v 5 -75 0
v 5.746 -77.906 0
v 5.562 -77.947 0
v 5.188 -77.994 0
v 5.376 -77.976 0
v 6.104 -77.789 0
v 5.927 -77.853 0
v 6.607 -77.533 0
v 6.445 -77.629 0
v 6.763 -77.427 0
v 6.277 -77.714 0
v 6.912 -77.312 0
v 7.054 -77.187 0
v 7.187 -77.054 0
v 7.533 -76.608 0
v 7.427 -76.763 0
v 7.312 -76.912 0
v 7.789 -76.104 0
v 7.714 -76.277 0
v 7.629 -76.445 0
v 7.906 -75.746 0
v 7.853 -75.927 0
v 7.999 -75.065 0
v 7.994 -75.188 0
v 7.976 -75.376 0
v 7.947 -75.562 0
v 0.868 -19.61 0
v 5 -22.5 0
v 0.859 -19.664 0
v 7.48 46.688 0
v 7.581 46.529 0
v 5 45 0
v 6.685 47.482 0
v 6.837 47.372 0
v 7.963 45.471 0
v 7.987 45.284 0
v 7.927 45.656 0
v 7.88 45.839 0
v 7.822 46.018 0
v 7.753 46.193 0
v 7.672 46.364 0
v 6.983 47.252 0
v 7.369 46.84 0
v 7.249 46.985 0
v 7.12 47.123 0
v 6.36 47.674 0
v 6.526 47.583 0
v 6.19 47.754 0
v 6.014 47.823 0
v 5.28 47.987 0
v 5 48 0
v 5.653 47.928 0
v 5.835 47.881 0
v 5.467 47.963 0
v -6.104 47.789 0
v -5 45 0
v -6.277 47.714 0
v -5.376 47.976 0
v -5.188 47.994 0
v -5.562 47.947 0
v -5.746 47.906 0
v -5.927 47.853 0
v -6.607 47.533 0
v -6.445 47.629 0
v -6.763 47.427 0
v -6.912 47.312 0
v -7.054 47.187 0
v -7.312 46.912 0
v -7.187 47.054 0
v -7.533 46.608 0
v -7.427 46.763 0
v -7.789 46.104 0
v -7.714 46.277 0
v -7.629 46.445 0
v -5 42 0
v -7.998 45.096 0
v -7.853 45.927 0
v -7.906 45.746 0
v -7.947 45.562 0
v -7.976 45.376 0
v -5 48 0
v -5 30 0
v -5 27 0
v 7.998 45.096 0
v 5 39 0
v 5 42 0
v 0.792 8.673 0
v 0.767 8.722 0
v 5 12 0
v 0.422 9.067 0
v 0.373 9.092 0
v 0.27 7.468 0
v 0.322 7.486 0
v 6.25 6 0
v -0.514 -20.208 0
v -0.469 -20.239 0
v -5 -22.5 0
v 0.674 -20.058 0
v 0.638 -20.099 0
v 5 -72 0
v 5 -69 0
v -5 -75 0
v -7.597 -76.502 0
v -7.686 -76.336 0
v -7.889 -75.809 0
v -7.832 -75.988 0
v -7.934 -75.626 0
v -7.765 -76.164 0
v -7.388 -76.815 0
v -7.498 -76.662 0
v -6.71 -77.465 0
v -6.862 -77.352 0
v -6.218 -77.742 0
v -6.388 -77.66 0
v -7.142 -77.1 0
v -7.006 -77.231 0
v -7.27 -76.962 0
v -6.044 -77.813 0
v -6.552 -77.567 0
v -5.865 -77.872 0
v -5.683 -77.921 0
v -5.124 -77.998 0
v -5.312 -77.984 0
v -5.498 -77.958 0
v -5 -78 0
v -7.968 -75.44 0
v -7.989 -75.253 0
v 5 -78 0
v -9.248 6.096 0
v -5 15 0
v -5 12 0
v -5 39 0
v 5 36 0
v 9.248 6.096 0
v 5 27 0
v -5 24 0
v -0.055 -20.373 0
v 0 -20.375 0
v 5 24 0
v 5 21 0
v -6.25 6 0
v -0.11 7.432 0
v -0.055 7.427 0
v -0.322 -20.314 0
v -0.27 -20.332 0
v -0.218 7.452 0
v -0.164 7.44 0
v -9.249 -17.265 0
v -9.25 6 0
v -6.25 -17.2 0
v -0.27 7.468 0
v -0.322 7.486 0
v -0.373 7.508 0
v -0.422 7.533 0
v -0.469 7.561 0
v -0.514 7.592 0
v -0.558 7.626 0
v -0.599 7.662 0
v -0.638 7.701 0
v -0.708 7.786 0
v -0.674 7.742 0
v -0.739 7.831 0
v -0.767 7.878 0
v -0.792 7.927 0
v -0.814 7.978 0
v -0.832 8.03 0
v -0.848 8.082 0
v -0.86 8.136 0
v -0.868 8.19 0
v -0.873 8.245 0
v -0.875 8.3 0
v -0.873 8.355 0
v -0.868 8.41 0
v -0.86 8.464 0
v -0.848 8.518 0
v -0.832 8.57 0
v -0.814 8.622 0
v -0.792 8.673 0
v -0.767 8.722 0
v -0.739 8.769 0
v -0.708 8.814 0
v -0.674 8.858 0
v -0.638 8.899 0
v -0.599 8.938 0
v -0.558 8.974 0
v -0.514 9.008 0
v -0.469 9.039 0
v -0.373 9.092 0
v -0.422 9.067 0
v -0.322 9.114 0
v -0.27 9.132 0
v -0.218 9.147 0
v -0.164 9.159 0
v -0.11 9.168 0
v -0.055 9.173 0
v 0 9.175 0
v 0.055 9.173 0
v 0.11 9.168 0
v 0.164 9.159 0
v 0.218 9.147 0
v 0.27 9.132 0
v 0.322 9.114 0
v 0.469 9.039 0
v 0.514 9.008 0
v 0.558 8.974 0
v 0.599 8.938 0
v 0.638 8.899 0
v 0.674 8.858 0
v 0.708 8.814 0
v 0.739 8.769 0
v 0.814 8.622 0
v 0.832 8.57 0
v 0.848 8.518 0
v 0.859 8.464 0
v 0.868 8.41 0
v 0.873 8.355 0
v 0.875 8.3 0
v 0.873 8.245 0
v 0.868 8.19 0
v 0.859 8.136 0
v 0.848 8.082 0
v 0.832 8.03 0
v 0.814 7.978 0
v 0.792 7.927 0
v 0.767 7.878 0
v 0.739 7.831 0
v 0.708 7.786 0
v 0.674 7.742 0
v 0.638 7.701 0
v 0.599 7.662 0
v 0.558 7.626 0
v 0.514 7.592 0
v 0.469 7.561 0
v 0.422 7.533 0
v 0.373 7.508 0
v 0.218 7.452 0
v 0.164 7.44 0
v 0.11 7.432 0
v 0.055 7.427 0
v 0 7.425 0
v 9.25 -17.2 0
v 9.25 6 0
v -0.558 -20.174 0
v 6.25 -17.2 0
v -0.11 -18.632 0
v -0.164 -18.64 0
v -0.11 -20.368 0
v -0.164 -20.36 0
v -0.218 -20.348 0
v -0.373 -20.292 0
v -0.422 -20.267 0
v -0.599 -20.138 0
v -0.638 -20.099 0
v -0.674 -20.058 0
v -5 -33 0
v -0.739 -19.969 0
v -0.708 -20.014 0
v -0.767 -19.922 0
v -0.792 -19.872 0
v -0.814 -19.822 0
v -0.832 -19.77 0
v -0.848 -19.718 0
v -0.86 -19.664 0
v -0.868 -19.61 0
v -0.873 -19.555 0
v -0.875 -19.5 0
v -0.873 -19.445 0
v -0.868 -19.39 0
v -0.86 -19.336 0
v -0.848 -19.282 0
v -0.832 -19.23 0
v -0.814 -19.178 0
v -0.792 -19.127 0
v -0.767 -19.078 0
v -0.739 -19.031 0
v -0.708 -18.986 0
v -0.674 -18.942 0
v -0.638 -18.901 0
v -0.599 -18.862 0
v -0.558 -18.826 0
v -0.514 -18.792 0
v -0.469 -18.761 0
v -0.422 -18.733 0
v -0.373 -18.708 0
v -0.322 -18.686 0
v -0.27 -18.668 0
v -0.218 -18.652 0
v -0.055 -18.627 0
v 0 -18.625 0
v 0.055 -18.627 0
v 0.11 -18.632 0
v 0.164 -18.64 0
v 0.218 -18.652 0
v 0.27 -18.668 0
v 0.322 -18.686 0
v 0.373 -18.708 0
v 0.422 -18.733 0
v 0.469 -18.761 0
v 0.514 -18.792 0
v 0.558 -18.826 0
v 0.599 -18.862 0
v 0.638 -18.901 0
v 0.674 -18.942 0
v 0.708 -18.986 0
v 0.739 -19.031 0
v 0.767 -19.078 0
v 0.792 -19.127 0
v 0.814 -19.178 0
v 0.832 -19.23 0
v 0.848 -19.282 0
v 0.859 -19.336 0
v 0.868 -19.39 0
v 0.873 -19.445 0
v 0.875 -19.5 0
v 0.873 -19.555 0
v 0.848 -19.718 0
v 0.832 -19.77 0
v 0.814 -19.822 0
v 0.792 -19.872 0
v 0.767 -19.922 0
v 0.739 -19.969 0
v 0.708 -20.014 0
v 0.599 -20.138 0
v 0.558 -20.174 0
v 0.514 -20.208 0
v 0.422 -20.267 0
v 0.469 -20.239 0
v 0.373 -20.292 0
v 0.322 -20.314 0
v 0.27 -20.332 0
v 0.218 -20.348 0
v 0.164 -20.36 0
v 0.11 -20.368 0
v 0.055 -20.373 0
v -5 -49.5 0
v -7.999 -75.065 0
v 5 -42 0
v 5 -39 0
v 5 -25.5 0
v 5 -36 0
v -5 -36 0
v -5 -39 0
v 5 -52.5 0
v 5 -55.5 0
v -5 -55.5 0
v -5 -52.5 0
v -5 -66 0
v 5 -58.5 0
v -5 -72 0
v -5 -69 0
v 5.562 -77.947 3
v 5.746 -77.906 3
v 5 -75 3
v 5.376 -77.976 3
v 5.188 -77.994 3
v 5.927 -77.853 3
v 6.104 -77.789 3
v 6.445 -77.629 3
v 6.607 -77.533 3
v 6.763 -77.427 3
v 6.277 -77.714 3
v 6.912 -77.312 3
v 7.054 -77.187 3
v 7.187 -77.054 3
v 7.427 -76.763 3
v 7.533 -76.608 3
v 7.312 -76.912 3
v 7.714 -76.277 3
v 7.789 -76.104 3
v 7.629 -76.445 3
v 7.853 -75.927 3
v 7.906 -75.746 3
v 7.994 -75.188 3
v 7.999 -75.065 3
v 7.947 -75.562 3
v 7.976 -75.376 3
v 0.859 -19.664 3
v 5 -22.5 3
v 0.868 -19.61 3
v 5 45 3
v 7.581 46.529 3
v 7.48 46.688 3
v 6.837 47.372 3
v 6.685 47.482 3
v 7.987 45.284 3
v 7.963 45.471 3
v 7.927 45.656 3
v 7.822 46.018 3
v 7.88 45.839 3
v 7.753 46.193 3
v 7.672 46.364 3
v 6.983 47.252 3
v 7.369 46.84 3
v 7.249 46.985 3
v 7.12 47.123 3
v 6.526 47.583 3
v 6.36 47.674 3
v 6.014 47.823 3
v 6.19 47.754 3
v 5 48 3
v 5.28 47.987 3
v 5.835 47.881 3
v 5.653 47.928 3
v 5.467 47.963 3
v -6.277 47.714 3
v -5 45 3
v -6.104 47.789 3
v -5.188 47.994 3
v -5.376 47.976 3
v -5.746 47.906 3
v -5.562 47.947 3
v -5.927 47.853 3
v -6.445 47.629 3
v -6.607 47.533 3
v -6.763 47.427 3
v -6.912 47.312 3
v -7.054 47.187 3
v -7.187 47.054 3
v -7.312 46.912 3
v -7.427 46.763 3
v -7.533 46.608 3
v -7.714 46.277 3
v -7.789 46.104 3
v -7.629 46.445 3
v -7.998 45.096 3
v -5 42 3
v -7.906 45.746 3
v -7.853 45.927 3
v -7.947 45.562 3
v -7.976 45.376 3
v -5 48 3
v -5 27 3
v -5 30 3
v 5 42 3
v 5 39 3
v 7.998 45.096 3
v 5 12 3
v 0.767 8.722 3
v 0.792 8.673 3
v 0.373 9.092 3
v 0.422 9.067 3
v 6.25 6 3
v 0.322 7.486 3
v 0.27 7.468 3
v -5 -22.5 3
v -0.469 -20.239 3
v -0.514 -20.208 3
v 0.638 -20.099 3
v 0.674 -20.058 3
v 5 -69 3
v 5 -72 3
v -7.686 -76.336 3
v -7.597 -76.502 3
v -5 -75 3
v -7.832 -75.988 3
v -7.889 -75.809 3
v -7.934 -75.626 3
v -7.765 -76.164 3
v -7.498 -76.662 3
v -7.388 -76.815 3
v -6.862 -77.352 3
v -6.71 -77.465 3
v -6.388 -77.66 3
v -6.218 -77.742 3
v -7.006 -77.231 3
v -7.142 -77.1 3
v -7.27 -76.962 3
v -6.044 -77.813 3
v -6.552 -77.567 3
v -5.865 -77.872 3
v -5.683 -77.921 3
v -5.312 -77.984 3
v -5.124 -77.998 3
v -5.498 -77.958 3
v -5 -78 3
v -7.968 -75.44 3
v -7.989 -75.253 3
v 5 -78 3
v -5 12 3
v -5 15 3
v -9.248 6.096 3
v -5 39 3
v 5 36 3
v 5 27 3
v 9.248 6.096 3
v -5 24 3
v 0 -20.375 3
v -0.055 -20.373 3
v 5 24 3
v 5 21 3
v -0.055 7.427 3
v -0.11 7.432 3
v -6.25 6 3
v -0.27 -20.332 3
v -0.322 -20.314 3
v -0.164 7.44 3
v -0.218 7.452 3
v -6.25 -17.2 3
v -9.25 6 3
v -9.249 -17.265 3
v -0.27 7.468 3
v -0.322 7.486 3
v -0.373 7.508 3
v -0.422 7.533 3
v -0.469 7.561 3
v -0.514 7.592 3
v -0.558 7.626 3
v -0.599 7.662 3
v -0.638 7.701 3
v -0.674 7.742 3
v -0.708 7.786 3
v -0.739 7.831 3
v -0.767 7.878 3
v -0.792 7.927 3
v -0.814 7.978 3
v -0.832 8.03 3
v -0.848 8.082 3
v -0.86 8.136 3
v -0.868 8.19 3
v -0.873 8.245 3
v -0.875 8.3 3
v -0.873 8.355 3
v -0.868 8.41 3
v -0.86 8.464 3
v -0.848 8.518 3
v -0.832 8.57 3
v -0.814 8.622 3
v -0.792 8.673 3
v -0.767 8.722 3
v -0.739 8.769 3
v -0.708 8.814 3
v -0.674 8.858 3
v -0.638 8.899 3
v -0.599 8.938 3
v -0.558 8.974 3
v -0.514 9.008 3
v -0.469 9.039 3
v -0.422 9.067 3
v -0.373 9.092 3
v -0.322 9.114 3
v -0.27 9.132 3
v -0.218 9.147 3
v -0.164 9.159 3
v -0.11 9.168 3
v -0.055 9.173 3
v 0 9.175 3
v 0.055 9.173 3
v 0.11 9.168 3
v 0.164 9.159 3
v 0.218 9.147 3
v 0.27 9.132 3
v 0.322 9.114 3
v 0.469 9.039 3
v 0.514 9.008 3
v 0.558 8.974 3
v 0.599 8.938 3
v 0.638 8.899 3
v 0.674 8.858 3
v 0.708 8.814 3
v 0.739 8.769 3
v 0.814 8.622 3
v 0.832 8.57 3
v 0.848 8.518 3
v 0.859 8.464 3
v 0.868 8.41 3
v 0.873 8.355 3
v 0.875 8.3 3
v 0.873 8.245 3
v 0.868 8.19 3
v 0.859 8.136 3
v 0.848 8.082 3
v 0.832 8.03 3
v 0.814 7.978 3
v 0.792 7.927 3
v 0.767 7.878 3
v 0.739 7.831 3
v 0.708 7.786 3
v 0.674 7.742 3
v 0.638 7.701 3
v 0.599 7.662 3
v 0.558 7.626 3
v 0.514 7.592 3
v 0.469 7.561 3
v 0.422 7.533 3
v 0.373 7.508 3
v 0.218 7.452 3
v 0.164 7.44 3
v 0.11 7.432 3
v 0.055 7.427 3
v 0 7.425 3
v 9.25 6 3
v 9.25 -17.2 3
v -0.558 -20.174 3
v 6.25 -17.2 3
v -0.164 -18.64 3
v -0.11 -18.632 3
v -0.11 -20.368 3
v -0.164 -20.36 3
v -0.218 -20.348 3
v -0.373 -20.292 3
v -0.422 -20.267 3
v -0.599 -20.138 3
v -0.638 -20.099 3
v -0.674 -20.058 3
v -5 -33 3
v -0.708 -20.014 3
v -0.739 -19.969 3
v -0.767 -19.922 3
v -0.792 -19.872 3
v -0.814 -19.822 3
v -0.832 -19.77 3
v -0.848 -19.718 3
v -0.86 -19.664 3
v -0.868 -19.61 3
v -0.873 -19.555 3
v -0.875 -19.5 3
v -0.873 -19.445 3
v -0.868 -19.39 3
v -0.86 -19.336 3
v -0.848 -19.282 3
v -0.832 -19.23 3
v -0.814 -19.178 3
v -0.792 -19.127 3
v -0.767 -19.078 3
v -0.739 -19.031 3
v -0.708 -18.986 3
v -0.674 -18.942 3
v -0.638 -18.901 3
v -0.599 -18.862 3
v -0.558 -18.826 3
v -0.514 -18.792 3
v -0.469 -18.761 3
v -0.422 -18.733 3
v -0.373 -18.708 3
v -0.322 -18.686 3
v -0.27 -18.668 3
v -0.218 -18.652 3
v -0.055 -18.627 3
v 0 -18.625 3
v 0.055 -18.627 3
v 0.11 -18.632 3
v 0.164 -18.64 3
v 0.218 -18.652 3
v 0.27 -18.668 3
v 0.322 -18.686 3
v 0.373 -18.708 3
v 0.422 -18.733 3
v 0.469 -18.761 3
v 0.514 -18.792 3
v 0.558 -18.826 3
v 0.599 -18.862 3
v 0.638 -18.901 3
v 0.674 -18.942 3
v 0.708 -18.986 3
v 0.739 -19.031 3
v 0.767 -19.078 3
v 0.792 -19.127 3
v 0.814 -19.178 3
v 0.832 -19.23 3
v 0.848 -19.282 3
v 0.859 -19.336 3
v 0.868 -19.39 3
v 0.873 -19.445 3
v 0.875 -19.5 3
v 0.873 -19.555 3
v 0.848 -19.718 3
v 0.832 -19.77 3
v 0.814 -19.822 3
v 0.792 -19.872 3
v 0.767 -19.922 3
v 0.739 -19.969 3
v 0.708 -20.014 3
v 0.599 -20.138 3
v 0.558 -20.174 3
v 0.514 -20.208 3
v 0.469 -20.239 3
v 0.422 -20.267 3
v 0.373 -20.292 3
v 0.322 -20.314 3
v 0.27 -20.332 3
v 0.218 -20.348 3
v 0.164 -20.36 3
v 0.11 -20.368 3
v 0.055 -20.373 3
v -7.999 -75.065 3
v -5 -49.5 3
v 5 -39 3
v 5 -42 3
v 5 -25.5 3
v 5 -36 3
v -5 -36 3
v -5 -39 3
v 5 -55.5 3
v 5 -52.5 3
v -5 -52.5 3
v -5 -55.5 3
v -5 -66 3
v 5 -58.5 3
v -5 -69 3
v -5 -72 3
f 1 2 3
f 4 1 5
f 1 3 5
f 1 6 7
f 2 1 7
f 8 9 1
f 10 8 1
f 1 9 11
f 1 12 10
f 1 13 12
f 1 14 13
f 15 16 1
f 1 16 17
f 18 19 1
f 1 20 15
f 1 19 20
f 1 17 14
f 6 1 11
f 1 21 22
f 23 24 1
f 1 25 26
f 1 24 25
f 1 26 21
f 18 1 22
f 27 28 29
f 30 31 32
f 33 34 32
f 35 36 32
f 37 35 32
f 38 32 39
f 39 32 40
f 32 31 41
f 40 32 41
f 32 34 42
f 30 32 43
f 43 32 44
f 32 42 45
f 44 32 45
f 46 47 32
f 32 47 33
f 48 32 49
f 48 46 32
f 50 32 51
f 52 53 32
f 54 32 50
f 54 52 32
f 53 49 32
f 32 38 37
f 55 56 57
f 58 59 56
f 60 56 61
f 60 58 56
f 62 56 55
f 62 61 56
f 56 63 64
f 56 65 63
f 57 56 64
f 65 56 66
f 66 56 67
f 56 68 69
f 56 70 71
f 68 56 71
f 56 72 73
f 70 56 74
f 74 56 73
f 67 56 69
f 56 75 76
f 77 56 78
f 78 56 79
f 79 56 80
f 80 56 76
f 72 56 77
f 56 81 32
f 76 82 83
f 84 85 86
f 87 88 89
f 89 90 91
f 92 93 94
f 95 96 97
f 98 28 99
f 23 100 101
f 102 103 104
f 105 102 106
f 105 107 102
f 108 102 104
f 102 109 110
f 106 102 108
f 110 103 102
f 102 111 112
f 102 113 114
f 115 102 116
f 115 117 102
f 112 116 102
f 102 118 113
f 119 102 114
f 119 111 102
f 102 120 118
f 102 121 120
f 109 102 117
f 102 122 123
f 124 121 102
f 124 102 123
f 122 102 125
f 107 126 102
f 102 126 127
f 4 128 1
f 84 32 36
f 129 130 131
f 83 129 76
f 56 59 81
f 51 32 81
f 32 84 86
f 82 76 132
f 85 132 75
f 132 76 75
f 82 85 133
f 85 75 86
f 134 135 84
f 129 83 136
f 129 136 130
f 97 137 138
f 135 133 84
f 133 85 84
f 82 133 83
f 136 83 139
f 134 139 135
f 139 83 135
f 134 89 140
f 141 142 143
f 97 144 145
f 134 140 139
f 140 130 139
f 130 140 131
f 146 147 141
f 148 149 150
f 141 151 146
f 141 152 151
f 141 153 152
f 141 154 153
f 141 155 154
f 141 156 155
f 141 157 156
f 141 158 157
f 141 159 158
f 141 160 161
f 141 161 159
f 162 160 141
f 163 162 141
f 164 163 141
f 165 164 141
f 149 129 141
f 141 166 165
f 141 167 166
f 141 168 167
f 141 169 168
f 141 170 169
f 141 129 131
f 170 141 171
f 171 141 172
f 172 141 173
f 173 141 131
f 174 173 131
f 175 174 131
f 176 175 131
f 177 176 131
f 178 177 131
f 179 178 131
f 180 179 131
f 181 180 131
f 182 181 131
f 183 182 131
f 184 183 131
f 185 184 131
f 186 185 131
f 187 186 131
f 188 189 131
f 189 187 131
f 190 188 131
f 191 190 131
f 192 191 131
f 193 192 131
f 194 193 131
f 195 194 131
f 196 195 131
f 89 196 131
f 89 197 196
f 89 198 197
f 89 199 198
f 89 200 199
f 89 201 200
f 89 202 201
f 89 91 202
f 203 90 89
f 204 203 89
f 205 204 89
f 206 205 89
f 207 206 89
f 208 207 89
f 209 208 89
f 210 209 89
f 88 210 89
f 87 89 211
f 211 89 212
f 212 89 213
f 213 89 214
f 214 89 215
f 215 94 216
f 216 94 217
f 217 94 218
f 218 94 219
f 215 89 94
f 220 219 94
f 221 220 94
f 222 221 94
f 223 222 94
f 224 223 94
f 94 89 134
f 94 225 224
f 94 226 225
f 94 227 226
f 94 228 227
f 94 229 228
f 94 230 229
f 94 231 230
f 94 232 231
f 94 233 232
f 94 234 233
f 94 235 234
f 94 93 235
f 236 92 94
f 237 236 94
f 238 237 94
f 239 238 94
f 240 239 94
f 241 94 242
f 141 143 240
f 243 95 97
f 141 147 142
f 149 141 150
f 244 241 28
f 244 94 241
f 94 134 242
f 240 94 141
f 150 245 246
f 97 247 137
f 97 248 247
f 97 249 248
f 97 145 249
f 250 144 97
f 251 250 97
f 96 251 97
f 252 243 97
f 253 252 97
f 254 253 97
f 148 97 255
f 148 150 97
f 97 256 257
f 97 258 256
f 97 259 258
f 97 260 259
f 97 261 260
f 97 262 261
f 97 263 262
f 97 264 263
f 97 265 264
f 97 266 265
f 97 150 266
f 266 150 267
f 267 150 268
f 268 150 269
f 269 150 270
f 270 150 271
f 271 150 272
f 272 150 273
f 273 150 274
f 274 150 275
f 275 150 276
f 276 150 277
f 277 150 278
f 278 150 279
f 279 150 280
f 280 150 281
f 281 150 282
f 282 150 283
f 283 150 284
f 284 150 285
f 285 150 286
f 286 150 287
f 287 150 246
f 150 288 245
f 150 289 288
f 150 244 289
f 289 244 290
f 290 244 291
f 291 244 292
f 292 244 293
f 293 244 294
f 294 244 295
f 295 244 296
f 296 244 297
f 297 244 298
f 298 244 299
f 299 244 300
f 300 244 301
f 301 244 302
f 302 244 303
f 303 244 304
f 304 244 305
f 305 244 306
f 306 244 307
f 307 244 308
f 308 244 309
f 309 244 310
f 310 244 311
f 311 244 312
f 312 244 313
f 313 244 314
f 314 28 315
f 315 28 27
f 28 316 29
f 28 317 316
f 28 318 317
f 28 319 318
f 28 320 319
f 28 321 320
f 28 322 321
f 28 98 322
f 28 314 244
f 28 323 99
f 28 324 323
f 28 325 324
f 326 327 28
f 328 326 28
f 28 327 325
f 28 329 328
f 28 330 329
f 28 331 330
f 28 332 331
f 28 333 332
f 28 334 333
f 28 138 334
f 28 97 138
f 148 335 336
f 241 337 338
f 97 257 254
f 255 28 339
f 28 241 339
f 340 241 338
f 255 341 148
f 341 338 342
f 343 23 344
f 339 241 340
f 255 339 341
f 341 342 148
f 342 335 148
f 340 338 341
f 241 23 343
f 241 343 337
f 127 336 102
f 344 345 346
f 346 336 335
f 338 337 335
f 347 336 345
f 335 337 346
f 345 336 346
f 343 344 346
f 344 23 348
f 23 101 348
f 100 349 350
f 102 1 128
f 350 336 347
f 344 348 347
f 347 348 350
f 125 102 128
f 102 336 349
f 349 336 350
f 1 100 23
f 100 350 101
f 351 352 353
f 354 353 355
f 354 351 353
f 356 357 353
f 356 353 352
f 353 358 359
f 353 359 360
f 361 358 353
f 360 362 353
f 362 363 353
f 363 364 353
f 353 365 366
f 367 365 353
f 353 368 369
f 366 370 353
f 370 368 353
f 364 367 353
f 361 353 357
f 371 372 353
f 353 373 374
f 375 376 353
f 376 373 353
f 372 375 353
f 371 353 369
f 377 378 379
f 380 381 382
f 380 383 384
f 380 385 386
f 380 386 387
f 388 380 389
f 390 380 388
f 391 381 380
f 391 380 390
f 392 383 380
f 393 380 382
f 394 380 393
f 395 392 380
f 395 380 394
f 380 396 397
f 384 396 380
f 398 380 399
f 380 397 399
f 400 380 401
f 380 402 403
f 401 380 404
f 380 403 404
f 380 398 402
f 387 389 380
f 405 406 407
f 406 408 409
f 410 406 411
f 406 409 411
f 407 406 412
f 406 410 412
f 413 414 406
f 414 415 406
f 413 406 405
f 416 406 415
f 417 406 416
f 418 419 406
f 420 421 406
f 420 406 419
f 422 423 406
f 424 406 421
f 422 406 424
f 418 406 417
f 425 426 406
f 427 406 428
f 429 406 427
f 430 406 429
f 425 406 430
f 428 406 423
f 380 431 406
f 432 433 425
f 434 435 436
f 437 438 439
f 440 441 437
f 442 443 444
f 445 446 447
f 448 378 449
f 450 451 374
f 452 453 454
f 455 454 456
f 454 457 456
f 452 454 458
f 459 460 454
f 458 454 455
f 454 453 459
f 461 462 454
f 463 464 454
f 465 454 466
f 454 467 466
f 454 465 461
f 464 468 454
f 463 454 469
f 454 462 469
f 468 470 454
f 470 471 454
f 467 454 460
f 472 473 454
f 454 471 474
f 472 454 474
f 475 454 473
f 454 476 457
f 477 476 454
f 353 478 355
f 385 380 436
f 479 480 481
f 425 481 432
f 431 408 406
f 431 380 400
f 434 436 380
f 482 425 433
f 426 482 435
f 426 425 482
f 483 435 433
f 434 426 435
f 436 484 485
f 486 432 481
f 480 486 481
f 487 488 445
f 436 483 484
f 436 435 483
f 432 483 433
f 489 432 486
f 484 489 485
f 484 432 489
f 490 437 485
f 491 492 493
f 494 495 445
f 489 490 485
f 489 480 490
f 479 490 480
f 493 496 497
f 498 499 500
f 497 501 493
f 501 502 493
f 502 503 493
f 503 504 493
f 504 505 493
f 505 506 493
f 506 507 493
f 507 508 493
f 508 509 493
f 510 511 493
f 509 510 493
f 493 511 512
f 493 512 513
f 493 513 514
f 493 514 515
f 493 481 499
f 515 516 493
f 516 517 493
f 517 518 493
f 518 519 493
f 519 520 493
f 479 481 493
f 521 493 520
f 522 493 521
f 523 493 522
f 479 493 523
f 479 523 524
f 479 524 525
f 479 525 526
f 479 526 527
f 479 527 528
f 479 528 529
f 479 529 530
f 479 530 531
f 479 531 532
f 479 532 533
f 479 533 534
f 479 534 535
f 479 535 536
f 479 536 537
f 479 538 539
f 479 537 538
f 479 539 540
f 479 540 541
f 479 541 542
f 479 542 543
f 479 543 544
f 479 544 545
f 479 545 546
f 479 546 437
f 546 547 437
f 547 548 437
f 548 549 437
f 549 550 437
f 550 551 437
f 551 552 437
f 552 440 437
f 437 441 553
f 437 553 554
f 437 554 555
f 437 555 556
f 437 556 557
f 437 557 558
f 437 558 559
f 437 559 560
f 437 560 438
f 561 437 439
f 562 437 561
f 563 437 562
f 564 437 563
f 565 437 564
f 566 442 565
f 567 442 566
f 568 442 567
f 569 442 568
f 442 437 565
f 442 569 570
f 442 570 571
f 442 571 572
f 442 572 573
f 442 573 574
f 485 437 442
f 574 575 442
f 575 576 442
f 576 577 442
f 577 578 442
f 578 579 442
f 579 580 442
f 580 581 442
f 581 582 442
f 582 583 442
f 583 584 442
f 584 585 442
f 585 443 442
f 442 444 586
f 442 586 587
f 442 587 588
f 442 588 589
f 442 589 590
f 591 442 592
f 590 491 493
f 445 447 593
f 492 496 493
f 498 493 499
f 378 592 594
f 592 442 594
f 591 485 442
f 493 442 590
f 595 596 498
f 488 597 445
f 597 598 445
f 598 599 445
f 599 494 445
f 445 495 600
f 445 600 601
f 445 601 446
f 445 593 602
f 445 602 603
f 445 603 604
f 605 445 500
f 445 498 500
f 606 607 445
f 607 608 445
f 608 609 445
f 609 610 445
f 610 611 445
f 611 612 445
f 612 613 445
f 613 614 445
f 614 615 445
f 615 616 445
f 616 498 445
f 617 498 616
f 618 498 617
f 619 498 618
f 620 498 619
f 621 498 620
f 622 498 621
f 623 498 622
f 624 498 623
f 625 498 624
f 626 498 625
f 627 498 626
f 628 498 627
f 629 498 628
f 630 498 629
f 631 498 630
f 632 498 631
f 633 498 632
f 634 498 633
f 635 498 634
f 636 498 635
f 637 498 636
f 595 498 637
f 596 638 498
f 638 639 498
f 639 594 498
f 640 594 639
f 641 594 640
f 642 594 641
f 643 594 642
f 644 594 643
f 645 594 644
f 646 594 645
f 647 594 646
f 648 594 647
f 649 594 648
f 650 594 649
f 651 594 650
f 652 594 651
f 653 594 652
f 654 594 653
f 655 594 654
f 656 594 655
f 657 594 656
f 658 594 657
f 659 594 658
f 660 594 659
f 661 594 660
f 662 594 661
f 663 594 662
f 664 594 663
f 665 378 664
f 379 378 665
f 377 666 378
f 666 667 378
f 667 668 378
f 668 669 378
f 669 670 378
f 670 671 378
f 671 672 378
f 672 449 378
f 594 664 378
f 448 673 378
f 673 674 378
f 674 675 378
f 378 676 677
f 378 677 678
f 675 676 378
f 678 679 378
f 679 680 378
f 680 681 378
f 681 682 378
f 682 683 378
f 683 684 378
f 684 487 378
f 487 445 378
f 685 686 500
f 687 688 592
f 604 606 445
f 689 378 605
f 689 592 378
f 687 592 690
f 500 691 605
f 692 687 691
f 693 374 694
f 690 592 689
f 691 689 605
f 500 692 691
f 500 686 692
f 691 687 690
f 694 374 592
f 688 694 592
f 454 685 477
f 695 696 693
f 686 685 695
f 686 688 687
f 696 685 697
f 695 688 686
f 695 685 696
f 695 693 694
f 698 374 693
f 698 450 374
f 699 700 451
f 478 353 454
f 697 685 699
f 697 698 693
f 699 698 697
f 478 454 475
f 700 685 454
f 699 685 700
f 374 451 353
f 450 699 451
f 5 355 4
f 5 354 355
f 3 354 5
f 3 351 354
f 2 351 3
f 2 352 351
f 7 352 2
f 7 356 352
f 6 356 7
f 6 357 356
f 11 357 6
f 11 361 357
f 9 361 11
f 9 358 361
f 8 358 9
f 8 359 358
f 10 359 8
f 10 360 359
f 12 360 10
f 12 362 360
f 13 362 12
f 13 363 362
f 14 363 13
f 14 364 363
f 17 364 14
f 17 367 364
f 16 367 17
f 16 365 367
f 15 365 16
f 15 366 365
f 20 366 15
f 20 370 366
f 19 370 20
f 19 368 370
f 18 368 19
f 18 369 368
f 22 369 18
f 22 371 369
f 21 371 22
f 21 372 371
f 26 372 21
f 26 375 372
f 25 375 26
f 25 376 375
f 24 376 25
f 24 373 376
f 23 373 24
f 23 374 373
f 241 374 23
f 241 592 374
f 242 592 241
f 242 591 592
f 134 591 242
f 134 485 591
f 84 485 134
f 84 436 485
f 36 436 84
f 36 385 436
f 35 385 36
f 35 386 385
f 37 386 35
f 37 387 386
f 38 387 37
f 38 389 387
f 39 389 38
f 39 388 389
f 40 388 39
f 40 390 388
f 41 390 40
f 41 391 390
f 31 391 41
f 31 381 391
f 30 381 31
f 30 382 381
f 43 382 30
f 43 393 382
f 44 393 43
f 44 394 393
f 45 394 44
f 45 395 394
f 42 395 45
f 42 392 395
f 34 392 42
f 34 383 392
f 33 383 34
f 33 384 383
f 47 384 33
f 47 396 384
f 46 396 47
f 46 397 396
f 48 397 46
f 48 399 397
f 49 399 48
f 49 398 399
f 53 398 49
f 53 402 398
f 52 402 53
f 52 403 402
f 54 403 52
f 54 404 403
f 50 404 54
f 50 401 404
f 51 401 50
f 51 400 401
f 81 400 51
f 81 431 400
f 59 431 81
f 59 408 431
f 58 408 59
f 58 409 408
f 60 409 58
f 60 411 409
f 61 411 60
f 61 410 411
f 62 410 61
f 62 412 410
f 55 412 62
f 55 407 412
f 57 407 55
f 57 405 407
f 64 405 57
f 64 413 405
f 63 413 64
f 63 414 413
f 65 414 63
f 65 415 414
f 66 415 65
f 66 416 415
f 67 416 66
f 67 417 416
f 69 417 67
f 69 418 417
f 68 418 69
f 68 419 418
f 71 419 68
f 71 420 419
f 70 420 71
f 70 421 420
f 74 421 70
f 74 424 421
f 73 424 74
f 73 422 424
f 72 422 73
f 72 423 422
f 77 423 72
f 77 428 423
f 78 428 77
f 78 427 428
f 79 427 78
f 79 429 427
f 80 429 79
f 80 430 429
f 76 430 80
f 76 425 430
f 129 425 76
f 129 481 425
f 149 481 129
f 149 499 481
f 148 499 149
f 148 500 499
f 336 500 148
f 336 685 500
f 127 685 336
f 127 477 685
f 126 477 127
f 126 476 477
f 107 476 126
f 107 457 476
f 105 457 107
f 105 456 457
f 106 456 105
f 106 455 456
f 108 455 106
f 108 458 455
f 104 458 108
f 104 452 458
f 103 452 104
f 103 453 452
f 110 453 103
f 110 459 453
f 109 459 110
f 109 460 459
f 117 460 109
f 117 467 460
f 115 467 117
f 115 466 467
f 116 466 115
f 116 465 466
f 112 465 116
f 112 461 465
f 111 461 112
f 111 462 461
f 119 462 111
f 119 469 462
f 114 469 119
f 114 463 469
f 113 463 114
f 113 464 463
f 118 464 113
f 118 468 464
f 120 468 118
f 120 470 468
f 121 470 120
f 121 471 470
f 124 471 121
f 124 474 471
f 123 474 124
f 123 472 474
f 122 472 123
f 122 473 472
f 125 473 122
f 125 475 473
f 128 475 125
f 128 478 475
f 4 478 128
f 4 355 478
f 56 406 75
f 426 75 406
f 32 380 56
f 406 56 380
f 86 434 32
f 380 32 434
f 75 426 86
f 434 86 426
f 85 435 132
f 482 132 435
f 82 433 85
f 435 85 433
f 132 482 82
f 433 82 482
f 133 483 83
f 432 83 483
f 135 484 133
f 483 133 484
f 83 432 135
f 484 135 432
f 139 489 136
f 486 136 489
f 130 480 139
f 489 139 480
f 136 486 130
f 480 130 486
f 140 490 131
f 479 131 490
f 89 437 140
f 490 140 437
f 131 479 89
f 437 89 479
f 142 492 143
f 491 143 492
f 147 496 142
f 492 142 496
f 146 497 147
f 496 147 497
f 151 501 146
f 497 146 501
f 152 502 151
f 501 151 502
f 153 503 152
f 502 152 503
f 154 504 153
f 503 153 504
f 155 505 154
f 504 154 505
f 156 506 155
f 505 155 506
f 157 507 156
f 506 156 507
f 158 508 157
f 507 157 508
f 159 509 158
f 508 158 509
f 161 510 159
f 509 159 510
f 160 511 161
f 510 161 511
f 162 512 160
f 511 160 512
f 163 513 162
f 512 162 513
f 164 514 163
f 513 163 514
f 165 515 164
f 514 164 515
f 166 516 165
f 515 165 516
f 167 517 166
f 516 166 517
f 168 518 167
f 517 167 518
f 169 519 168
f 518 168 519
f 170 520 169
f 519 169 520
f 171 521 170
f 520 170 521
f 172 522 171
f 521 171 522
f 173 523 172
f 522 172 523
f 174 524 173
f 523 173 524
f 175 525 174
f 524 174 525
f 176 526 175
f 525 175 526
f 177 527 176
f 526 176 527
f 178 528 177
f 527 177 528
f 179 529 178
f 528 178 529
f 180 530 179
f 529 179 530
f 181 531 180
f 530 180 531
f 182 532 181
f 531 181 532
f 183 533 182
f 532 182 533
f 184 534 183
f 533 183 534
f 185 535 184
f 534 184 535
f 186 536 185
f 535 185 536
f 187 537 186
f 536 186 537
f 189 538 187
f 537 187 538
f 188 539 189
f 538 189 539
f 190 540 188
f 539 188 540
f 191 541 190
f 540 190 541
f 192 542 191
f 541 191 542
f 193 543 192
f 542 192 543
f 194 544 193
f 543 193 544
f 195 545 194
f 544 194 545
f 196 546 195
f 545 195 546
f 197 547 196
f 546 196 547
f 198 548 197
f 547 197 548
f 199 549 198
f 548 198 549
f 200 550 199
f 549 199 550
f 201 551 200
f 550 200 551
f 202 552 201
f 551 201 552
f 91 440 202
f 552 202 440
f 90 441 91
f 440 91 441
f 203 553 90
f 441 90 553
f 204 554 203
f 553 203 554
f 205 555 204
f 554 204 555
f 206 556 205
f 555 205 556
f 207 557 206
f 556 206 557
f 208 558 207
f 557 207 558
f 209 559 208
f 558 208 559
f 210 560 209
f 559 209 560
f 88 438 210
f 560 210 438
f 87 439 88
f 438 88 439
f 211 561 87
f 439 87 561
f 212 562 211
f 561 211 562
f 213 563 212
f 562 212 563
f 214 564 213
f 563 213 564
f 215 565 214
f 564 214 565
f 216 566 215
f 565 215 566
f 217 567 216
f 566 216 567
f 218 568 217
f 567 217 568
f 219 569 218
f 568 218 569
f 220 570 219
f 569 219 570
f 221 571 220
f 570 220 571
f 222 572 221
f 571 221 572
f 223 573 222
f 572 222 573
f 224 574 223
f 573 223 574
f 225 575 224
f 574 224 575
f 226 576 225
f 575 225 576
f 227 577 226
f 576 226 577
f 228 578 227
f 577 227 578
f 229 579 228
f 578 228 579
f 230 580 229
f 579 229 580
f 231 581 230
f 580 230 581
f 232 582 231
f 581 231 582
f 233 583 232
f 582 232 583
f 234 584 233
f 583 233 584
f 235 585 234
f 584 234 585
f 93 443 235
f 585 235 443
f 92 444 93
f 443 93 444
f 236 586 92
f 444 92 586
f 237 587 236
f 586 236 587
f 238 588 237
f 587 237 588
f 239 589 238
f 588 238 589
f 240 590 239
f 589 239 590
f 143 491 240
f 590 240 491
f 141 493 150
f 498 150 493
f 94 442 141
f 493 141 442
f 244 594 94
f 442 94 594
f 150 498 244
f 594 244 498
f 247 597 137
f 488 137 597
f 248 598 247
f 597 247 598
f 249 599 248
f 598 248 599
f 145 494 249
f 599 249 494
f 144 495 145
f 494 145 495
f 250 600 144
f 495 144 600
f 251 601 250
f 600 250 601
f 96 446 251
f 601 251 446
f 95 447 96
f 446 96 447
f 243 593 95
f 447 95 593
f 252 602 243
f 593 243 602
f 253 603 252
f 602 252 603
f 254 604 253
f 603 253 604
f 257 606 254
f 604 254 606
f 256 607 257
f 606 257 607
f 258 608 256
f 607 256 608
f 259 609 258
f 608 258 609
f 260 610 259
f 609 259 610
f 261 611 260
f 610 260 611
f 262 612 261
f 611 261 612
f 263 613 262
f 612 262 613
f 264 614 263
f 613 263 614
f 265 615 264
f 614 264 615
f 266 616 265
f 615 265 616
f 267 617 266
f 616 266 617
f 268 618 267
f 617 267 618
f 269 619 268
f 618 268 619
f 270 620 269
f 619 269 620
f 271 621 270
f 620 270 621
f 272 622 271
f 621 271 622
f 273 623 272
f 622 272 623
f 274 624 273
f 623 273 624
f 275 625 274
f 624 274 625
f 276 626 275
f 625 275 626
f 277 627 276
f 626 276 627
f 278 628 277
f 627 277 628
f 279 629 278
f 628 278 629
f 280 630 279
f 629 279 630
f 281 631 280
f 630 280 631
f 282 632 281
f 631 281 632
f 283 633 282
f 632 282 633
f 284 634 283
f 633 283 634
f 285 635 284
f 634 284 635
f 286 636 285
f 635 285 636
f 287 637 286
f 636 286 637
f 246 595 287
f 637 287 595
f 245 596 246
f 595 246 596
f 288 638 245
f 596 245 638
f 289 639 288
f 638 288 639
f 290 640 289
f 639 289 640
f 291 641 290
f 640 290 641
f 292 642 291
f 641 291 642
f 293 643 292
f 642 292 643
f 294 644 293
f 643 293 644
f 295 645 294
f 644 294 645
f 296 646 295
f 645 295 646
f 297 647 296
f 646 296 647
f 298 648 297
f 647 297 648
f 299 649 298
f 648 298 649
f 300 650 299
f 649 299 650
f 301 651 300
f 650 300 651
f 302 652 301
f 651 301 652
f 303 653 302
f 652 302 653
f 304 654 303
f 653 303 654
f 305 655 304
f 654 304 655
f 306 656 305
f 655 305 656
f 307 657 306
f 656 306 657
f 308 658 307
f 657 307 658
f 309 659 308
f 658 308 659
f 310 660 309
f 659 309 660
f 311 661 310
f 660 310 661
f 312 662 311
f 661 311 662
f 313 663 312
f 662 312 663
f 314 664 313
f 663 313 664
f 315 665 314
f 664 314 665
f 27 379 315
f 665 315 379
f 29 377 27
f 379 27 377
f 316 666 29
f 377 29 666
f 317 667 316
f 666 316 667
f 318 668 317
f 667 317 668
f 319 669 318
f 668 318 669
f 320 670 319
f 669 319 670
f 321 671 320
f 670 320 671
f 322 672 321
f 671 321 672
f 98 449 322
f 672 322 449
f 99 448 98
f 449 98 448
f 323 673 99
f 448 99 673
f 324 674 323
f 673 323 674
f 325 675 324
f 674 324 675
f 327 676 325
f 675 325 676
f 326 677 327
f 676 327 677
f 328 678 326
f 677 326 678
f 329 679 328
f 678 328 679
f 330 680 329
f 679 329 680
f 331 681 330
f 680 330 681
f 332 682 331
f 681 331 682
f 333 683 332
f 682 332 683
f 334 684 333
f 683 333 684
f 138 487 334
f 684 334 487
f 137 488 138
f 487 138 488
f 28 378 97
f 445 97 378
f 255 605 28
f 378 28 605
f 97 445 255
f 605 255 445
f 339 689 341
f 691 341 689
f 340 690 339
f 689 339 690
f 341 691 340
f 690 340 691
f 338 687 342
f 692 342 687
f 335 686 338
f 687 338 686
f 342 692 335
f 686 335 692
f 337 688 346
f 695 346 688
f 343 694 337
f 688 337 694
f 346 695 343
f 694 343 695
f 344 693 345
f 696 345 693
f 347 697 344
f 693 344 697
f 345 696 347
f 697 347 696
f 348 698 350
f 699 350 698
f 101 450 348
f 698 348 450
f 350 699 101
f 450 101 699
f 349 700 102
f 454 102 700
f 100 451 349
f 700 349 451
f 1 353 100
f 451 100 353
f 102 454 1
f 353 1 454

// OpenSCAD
// file: gear.scad
// TODO: Screw mount is a bit too thick, cut another hole in it about halfway through

$fn = 64;

gear_diam = 90;
gear_thickness = 4;
gear_spur_depth = 2;
gear_rim_width = 3;

function outer_diam(d, fn=$fn) = 1/cos(180/fn) * d;

// Servo head
module servo_arm() {
  tip_diameter = 3.75;
  base_diameter = 7;
  short_arm_length = 16.0;
  long_arm_length = 18.6;
  bar_length = 16.8;
  arm_thickness = 1.75;
  base_thickness = 4;
  screw_height = base_thickness + gear_thickness;
  screw_diam = 2.4;

  // origin is center of arm attachment (screw center, without base)
  union() {
    linear_extrude(height=arm_thickness, center=true){
      union() {
        // arm and center
        hull() {
          circle(d=base_diameter);
          translate([long_arm_length - tip_diameter / 2, 0])
            circle(d=tip_diameter);
          translate([-(short_arm_length - tip_diameter / 2), 0])
            circle(d=tip_diameter);
        }

        // short bar across
        hull() {
          translate([0, bar_length / 2 - tip_diameter / 2])
            circle(d=tip_diameter);
          translate([0, -(bar_length / 2 - tip_diameter / 2)])
            circle(d=tip_diameter);
        }
      }
    }
    translate([0, 0, -base_thickness + arm_thickness / 2]) {
      cylinder(d=base_diameter, h=base_thickness);
      cylinder(d=outer_diam(screw_diam), h=screw_height);
    }
  }
}

module servo_mount_mold_box() {
  difference() {
    translate([0, 0, 0.25])
      cube([38, 20, 2], center=true);
    servo_arm();
  }
}

module half_circle_rim(inner, outer) {
  difference() {
    circle(d=outer);
    circle(d=inner);
    translate([0, -outer/2])
      square([outer/2, outer]);
  }
}

module gear() {
  outer_diam = gear_diam + 2 * gear_spur_depth;
  inner_diam = gear_diam - 2 * gear_rim_width;

  difference() {
    union() {
      // half moon rim
      difference() {
        rotate_extrude(angle=180) {
          translate([inner_diam / 2, 0, 0])
            difference() {
              w = gear_rim_width + gear_spur_depth;
              h = gear_thickness;
              rt = h/6;
              square([w, h]);
              polygon([[w, rt], [w, h - rt], [w - gear_spur_depth, h/2 + rt/2], [w - gear_spur_depth, h/2 - rt/2]]);
            }
        }

        // cut off second half, as angle = 180 does not work in this version of openscad
        linear_extrude(height=gear_thickness)
          translate([gear_rim_width / 2, -outer_diam/2])
            square([outer_diam / 2, outer_diam]);
      }

      linear_extrude(height=gear_thickness) {
        // box that fits the servo mount
        resize([20, 40], center=true) circle(d=1);

        for (angle = [0, 60, 120, 180])
          rotate([0, 0, angle])
            translate([-gear_rim_width / 2, 0])
              square([gear_rim_width, gear_diam/2]);
      }
    }


    // servo arm mount cutout
    translate([0, 0, 1.75/2])
      rotate([0, 0, 90])
        servo_arm();

    // cable tie cutouts
    for(x = [-1, 1])
      for(y = [-1, 1])
        translate([x * 6, y * 6, 0])
          cylinder(d=outer_diam(3), h=gear_thickness);
  }
}

//rotate([180, 0 ,0])
  gear();
// servo_mount_mold_box();
// file: common.scad
$fn = 100;

function outer_diam(d, fn=$fn) = 1/cos(180/fn) * d;

// gear
gear_diam = 90;
gear_thickness = 4;
gear_spur_depth = 2;
gear_rim_width = 3;

// stand (vertical beam with servo mount)
gear_diameter = gear_diam;
body_length = 23.2;
body_width = 12.5;
body_height = 22.6;
mount_height = 2.8;
mount_offset = 21 - mount_height;
mount_length = 32.5;
gear_hood_diam = 12;
gear_hood_height = 5.7;
arm_spacing = 2.5;
mount_hole_diam = 1.75;
mount_hole_offset = (27.8 - body_length)/2;
stand_rim_width = 3;
stand_thickness = 3;
stand_height = 120;
stand_width = 10;
// main file
include <common.scad>;
use <gear.scad>;

$fn = 100;


module servo () {
  // origin is mounting point, center of gear attachment
  offset = [
    -(body_length - gear_hood_diam/2),
    -(body_width / 2),
    -(body_height + gear_hood_height + arm_spacing)
  ];

  translate(offset) {
    union() {
      cube([body_length, body_width, body_height]);
      translate([-(mount_length - body_length)/2, 0, mount_offset])
        cube([mount_length, body_width, mount_height]);
      translate([body_length - gear_hood_diam/2, body_width/2, body_height])
        cylinder(d=gear_hood_diam, h=gear_hood_height);
    }
  }
}

module example_gear_and_servo() {
  rotate([0, 0, 90])
    servo();
  gear();
}

module servo_mount_cutout() {
  translate([-body_width/2, -(body_length - gear_hood_diam /2)]) {
    square([body_width, body_length]);
    translate([body_width/2, -mount_hole_offset])
      circle(d=mount_hole_diam);
    translate([body_width/2, body_length+mount_hole_offset])
      circle(d=mount_hole_diam);
  }
}

rim_width = stand_rim_width;

module triangle_cutouts(n=1, length = stand_width + rim_width) {
  l = length / 2 / n;
  for(i = [0:1:n-1]) {
    translate([-stand_width / 2, i * (l + 2 * rim_width)]) {
      polygon([
        [0, 0],
        [stand_width, 0],
        [stand_width, l]]);
      polygon([
        [0, rim_width],
        [stand_width, rim_width + l],
        [0, rim_width + l]]);
    }
  }
}

module stand() {
  linear_extrude(height=stand_thickness){
    difference() {
      offset(r=rim_width) {
        hull() {
          servo_mount_cutout();
          translate([-stand_width/2, gear_diameter/2 - stand_height])
            square([stand_width, stand_height]);
        }
      }
      servo_mount_cutout();
      translate([-stand_width/2, gear_diameter/2 - rim_width])
        square([stand_width, stand_thickness]);
      translate([-stand_width/2, gear_diameter/2 - stand_height])
        square([stand_width, stand_thickness]);

      translate([0, gear_hood_diam]) {
        triangle_cutouts(n=2, length=gear_diameter / 2 - 2 * rim_width - stand_thickness);
      }

      translate([0, -(stand_height - gear_diameter / 2) + stand_thickness + rim_width]) {
        triangle_cutouts(n=3, length=stand_height - gear_diameter / 2 - 3 * rim_width - stand_thickness);
      }
    }
  }
}

stand();
